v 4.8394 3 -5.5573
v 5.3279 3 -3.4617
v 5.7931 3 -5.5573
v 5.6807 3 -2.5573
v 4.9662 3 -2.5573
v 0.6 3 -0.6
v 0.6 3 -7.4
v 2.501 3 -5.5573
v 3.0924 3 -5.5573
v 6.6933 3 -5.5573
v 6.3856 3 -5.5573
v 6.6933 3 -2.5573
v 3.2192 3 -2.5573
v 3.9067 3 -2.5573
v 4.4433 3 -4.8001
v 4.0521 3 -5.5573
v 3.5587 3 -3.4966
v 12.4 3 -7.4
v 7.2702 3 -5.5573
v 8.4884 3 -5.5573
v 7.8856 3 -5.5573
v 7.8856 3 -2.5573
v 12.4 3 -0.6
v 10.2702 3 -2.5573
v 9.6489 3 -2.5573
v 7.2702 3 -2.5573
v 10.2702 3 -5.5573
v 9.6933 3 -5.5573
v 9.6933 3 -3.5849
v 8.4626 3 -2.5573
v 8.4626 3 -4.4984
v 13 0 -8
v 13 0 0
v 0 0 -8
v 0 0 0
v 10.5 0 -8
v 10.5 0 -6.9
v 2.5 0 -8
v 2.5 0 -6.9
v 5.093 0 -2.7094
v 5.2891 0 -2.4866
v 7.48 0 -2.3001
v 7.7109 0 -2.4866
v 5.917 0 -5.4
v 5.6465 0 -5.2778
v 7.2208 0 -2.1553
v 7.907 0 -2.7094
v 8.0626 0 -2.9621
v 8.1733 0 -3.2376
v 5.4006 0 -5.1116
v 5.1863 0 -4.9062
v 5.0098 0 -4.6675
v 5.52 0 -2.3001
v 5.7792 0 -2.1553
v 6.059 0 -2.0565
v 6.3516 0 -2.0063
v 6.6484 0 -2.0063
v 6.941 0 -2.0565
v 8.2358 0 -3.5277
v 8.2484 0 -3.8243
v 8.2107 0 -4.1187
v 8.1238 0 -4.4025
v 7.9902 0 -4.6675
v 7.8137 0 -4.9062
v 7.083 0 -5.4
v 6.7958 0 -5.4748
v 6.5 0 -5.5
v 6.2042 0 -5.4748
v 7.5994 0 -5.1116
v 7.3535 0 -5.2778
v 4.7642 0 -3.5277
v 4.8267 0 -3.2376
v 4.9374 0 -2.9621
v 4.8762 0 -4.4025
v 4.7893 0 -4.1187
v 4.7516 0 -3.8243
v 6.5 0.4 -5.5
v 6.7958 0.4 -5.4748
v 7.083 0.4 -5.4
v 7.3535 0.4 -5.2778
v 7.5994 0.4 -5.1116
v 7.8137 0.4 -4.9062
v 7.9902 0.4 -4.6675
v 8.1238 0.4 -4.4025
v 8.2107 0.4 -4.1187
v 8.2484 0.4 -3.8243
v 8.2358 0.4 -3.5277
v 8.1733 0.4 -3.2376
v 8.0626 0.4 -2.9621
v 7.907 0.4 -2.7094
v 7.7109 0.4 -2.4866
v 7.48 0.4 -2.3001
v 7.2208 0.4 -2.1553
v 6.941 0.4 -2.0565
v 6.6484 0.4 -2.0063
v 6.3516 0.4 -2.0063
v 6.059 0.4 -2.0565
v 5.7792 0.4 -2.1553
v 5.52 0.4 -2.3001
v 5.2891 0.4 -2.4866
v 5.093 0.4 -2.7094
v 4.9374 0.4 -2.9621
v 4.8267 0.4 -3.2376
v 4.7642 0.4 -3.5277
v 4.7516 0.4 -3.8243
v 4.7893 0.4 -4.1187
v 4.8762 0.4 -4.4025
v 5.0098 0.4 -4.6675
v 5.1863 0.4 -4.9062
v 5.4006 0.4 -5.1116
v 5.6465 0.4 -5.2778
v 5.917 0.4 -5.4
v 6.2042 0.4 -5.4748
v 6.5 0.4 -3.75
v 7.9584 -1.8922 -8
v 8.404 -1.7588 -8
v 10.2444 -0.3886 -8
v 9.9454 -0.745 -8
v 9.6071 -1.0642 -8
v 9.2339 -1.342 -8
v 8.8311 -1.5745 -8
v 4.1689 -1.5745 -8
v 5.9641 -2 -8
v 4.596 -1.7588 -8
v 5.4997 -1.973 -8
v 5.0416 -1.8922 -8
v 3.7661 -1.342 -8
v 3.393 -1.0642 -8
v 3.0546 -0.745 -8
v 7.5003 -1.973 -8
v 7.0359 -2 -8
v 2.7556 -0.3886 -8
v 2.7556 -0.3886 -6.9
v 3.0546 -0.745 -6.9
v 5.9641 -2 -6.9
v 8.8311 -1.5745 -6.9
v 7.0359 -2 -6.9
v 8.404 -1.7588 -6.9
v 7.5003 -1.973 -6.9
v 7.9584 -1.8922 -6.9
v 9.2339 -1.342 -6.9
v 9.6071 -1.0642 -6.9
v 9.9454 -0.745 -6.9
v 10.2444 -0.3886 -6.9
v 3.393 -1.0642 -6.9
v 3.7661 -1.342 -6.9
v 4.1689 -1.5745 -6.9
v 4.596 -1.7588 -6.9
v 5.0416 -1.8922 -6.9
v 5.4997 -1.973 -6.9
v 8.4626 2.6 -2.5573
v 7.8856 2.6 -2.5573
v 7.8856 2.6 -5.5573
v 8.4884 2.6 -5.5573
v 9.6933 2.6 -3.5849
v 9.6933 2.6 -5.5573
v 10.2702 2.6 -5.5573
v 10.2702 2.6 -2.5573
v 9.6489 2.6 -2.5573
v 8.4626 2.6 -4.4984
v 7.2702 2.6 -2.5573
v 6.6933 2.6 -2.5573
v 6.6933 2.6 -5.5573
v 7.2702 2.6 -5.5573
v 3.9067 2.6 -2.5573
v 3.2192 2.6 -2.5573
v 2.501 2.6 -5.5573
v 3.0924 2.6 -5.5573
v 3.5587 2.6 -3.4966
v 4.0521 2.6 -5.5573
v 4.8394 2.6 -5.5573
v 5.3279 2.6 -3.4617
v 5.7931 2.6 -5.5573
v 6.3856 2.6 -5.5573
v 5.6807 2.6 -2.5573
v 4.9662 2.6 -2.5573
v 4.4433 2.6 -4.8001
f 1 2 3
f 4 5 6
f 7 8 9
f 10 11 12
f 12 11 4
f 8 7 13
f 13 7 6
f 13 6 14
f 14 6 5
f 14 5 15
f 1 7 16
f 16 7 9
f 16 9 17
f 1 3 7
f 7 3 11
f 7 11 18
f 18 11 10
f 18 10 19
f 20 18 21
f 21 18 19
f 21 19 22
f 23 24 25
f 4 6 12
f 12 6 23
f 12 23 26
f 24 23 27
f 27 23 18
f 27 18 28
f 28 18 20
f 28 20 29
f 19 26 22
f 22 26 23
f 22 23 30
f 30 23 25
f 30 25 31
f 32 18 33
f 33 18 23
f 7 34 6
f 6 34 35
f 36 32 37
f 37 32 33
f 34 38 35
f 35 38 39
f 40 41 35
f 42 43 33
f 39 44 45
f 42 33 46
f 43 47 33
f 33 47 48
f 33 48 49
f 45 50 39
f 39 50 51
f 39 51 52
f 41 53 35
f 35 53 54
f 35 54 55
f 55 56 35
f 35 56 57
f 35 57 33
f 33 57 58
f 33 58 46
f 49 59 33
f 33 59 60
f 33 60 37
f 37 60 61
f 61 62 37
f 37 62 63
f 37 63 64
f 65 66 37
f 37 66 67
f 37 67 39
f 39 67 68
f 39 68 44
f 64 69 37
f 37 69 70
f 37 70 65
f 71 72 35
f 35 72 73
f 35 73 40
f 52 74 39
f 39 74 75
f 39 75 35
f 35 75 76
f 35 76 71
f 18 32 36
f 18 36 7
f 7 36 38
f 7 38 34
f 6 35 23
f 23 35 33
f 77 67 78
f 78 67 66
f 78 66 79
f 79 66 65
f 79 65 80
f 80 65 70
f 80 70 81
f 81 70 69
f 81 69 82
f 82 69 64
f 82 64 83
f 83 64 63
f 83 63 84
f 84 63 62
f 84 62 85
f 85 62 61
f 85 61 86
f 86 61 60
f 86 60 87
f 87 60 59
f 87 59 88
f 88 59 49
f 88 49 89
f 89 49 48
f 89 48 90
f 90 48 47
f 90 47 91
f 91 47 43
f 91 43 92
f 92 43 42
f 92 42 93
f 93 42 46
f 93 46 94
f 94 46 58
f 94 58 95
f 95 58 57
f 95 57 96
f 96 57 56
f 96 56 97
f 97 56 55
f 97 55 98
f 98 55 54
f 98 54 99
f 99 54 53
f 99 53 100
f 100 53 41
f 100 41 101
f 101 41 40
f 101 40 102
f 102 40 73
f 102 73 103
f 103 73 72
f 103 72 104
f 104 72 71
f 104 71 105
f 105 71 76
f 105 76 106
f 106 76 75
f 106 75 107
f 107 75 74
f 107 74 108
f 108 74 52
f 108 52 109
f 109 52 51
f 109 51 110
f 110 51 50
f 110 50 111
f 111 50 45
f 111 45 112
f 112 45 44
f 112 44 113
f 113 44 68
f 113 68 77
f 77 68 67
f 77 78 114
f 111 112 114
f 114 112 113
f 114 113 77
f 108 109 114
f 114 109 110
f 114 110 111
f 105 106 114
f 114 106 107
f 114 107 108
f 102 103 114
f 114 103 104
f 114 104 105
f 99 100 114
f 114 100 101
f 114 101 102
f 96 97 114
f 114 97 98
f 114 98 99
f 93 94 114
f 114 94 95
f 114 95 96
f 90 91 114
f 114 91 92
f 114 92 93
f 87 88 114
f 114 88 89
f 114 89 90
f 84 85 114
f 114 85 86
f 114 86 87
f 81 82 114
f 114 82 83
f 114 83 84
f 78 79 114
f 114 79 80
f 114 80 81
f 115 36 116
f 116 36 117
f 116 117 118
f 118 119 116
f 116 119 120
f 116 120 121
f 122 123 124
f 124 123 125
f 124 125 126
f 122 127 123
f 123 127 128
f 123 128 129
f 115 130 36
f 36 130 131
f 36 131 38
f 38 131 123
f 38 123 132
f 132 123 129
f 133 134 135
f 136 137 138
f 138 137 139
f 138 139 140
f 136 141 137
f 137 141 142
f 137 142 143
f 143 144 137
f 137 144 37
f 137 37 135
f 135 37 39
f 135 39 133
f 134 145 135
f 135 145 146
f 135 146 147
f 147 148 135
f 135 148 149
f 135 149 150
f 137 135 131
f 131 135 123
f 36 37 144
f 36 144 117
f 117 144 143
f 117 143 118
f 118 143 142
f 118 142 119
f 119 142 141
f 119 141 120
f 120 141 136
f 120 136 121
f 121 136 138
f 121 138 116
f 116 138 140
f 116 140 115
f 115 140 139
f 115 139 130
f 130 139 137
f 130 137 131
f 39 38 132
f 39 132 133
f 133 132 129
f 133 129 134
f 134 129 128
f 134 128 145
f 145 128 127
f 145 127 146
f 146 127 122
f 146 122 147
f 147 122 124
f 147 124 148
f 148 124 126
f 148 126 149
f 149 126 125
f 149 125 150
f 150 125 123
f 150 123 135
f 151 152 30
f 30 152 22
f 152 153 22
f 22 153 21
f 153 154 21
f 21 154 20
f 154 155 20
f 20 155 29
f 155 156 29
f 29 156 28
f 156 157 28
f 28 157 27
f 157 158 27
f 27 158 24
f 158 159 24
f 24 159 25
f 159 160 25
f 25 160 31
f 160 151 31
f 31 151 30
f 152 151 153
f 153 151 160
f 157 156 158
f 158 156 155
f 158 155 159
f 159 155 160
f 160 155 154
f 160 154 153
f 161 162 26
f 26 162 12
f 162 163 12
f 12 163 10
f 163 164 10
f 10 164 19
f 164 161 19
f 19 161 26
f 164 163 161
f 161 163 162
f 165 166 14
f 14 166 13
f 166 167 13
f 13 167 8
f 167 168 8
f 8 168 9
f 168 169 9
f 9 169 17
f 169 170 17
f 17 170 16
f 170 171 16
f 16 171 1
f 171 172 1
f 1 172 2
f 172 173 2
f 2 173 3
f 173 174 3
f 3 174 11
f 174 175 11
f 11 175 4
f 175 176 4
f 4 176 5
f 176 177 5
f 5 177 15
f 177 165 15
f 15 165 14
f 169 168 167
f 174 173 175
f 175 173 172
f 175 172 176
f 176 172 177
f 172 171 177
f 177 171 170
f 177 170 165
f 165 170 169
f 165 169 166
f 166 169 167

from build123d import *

# Parameters (mm, degrees)
SKETCH1_W               = 13
SKETCH1_H               = 8
BOSS_EXTRUDE1_DEPTH     = 3
CUT_EXTRUDE1_DEPTH      = 16.556349186
CUT_EXTRUDE1_DEPTH_BACK = 16.556349186
CUT_EXTRUDE2_DEPTH      = 16.556349186
CUT_EXTRUDE2_DEPTH_BACK = 16.556349186
SKETCH4_R               = 1.75
CUT_EXTRUDE3_DEPTH      = 0.4
SKETCH5_W               = 8
SKETCH5_H               = 1.1
BOSS_EXTRUDE2_DEPTH     = 2
FILLET1_R               = 4
SKETCH6_W               = 0.576923077
SKETCH6_H               = 3
CUT_EXTRUDE4_DEPTH      = 0.4


with BuildPart() as part:
    # Sketch1 → Boss-Extrude1 (new body)
    with BuildSketch(Plane(origin=(0, 0, 0), x_dir=(1, 0, 0), z_dir=(0, 1, 0))):
        with Locations((6.5, 4)):
            Rectangle(SKETCH1_W, SKETCH1_H)
    extrude(amount=BOSS_EXTRUDE1_DEPTH)

    # Sketch2 → Cut-Extrude1 (cut, two sides: drawn at the far end of the back side and taken through both)
    with BuildSketch(Plane.XY.offset(-CUT_EXTRUDE1_DEPTH_BACK)):
        Polygon((0, 0), (0.6, 3), (0, 3), align=None)
        Polygon((13, 0), (12.4, 3), (13, 3), align=None)
    extrude(amount=CUT_EXTRUDE1_DEPTH + CUT_EXTRUDE1_DEPTH_BACK, mode=Mode.SUBTRACT)

    # Sketch3 → Cut-Extrude2 (cut, two sides: drawn at the far end of the back side and taken through both)
    with BuildSketch(Plane(origin=(0, 0, 0), x_dir=(0, 0, -1), z_dir=(1, 0, 0)).offset(-CUT_EXTRUDE2_DEPTH_BACK)):
        Polygon((0, 0), (0.6, 3), (0, 3), align=None)
        Polygon((8, 3), (7.4, 3), (8, 0), align=None)
    extrude(amount=CUT_EXTRUDE2_DEPTH + CUT_EXTRUDE2_DEPTH_BACK, mode=Mode.SUBTRACT)

    # Sketch4 → Cut-Extrude3 (cut)
    with BuildSketch(Plane.XZ):
        with Locations(Location((6.50000125, -3.75, 0), (0, 0, 270))):
            Circle(SKETCH4_R)
    extrude(amount=-CUT_EXTRUDE3_DEPTH, mode=Mode.SUBTRACT)

    # Sketch5 → Boss-Extrude2 (add)
    with BuildSketch(Plane.XZ):
        with Locations((6.500011, -7.45)):
            Rectangle(SKETCH5_W, SKETCH5_H)
    extrude(amount=BOSS_EXTRUDE2_DEPTH)

    # Fillet1
    # the kernel refuses this fillet: 4 mm, written as the material it takes off along each edge
    with BuildSketch(Plane(origin=(10.500011, -2, -16.660254038), x_dir=(0, 1, 0), z_dir=(0, 0, 1)), Plane(origin=(2.500011, -2, 1.760254038), x_dir=(0, 1, 0), z_dir=(0, 0, -1))) as fillet1_piece_1:
        with BuildLine():
            CenterArc((4, 3.464101615), FILLET1_R, 180, 60)
            Line((0, 3.464101615), (-0.08, 3.464101615))
            Line((-0.08, 3.464101615), (-0.08, 0))
            Line((-0.08, 0), (0, -0.08))
            ThreePointArc((0, -0.08), (1, -0.08), (1.96, -0.069282032))
            Line((1.96, -0.069282032), (2, 0))
        make_face()
    extrude(amount=18.420508076, mode=Mode.SUBTRACT)

    # Sketch6 → Cut-Extrude4 (cut)
    with BuildSketch(Plane(origin=(0, 3, 0), x_dir=(1, 0, 0), z_dir=(0, 1, 0))):
        Polygon((3.219165588, 2.557267472), (2.50101655, 5.557267472), (3.092362704, 5.557267472), (3.558708858, 3.496570357), (4.052098281, 5.557267472), (4.839357896, 5.557267472), (5.327939627, 3.461714587), (5.793083858, 5.557267472), (6.385631934, 5.557267472), (5.68070405, 2.557267472), (4.966160781, 2.557267472), (4.443324242, 4.800055934), (3.906665588, 2.557267472), align=None)
        with Locations((6.981785781, 4.057267472)):
            Rectangle(SKETCH6_W, SKETCH6_H)
        Polygon((7.885631934, 2.557267472), (7.885631934, 5.557267472), (8.488396358, 5.557267472), (9.693324242, 3.584911703), (9.693324242, 5.557267472), (10.270247319, 5.557267472), (10.270247319, 2.557267472), (9.648853088, 2.557267472), (8.462555011, 4.498373241), (8.462555011, 2.557267472), align=None)
    extrude(amount=-CUT_EXTRUDE4_DEPTH, mode=Mode.SUBTRACT)


solid = part.part
